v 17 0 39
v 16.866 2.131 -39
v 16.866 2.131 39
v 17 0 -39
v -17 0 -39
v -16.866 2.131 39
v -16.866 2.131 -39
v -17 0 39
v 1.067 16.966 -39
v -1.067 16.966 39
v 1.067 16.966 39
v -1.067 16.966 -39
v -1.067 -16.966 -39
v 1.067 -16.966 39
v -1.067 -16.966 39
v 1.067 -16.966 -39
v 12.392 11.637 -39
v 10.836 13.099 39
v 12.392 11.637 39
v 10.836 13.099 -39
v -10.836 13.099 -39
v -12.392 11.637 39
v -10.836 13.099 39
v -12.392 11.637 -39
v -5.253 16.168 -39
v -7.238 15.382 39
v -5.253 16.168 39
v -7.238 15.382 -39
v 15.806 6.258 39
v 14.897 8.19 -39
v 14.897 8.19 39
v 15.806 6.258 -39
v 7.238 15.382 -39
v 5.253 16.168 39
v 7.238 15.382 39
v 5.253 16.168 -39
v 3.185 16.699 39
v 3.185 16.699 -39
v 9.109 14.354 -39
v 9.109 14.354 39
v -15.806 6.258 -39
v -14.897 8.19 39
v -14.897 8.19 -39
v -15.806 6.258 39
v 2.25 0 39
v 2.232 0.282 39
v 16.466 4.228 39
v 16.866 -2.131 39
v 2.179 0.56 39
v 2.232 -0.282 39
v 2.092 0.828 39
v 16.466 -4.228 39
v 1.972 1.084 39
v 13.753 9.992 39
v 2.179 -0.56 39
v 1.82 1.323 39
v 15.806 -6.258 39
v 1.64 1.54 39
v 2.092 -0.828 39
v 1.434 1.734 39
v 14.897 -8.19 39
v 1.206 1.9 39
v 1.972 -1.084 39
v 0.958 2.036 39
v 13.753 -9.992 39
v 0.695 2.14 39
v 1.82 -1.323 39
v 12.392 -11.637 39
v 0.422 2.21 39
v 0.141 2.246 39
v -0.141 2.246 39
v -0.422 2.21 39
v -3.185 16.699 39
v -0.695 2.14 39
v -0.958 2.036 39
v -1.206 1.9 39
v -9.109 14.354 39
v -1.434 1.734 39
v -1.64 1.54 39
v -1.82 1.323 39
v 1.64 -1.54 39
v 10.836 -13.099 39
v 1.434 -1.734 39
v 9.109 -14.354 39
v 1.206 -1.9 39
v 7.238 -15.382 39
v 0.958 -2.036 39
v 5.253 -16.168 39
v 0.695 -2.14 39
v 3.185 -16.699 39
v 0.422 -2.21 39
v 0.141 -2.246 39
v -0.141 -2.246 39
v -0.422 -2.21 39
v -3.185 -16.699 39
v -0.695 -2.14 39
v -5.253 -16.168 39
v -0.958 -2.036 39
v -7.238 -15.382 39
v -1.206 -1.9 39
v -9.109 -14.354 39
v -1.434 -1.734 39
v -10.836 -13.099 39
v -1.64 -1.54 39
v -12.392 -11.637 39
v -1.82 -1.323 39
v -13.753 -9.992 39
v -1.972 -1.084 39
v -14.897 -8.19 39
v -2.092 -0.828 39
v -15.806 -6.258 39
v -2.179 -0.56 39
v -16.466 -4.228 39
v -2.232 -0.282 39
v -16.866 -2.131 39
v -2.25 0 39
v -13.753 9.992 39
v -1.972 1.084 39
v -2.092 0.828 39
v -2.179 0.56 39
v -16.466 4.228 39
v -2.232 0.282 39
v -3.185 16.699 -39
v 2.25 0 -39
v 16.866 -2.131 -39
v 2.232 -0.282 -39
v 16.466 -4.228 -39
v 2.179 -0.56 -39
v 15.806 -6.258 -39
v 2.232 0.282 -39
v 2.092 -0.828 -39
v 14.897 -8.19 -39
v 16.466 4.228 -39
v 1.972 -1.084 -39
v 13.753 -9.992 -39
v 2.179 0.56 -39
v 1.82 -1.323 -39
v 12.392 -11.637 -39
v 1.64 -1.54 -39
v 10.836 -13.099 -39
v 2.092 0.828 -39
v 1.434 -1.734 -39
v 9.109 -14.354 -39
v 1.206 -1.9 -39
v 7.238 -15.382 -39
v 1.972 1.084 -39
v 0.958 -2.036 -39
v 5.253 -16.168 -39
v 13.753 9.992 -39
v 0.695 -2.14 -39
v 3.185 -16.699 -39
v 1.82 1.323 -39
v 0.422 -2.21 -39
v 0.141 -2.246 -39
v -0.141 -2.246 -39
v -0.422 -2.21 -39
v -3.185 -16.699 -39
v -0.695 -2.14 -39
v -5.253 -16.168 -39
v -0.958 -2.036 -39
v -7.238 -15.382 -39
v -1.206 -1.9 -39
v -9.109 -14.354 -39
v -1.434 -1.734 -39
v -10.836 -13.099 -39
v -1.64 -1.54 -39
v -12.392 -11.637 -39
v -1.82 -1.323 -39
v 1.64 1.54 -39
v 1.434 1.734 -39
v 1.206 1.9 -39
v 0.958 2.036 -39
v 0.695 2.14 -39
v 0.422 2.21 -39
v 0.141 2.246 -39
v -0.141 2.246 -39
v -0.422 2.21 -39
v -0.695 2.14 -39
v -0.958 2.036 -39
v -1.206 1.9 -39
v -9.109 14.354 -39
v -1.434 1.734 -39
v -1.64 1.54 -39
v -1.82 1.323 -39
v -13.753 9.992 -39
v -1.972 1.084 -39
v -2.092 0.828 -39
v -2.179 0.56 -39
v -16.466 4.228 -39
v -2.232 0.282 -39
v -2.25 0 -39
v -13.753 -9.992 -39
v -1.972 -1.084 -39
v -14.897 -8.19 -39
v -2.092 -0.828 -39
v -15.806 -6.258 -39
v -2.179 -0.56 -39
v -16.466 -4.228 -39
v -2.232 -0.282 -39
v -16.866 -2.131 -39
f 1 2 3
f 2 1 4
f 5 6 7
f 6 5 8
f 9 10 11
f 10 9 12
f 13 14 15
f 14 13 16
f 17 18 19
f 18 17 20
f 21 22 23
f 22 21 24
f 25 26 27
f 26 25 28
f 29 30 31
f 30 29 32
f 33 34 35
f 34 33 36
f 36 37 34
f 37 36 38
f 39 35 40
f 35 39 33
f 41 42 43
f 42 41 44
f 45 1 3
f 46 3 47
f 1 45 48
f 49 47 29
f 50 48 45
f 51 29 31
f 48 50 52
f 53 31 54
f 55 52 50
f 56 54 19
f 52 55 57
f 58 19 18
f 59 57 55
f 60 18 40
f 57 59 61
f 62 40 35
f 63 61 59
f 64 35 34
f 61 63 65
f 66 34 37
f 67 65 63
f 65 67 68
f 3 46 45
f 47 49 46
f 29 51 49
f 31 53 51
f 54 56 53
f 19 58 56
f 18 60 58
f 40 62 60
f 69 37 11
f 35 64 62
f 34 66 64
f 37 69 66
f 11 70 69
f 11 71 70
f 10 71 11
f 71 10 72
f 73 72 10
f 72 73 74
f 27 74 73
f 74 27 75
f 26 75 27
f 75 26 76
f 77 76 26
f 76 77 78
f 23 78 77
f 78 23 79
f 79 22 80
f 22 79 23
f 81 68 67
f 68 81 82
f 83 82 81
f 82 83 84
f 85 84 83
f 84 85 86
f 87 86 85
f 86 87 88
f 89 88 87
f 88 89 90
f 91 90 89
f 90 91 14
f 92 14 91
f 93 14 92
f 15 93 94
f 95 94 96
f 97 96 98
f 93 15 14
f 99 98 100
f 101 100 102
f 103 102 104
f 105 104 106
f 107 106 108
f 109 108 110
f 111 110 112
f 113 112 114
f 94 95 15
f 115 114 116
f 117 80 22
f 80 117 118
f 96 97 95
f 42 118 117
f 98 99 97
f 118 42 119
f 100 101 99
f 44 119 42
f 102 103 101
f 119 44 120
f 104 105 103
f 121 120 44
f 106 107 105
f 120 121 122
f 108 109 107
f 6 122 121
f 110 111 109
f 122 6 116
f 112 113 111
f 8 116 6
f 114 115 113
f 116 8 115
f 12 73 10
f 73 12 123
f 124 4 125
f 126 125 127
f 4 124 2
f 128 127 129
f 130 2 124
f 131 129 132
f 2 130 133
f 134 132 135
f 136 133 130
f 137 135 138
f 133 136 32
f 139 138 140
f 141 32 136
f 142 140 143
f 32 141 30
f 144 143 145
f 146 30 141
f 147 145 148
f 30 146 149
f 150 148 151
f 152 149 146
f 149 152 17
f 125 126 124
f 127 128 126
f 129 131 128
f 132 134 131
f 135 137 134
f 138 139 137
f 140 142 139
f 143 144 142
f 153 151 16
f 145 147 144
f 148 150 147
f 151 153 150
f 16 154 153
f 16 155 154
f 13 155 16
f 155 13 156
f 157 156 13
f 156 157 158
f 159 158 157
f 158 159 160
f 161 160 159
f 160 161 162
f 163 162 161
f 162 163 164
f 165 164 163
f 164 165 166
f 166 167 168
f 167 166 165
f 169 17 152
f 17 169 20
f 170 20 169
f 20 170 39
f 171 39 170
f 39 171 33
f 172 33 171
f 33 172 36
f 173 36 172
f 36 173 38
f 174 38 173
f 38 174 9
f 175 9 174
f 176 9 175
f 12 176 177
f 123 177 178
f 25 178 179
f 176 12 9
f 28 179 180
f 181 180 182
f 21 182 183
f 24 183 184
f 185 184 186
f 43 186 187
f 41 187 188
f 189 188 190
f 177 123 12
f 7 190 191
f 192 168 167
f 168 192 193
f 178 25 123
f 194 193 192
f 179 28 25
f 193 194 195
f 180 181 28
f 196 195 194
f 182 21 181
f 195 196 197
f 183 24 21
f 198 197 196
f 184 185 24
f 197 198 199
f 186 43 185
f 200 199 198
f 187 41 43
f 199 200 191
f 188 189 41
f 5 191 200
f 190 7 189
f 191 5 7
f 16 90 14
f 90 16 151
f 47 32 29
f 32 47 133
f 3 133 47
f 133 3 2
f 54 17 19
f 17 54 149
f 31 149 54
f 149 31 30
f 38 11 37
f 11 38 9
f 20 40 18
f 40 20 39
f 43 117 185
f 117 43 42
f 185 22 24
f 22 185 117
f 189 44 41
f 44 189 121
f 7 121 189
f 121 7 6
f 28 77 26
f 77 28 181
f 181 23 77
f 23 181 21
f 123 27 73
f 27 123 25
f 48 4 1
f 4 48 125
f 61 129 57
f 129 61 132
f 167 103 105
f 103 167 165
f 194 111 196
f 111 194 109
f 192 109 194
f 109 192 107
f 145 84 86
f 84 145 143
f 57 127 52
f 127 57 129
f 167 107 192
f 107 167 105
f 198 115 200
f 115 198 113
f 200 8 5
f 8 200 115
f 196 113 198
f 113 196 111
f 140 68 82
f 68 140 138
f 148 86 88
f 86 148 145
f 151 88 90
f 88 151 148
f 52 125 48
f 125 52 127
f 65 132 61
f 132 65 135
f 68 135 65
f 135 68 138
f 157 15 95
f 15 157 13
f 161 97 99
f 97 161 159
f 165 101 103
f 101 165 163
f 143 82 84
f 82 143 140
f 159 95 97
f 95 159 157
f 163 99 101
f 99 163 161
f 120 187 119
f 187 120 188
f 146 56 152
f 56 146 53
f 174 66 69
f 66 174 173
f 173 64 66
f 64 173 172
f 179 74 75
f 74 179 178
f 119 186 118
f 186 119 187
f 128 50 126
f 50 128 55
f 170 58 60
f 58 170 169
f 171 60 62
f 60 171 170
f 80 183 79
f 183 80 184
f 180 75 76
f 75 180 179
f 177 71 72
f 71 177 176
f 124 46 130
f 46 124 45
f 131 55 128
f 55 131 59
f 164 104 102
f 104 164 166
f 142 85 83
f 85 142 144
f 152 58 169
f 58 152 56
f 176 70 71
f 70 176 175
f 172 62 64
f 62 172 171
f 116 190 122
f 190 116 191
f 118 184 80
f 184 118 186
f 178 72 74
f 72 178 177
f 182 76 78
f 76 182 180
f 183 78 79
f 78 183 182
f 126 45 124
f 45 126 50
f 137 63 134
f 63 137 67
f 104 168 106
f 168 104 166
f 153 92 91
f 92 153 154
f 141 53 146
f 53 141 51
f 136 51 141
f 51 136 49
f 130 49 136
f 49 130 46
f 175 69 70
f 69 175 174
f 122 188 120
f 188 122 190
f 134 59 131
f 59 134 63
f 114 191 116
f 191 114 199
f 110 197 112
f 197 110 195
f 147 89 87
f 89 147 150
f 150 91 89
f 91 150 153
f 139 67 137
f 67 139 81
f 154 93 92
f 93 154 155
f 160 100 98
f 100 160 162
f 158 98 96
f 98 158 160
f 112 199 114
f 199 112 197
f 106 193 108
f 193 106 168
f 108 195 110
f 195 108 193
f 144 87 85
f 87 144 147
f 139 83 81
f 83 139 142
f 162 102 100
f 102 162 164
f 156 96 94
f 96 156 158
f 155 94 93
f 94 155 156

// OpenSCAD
$fn = 50;


difference() {
	union() {
		translate(v = [0, 0, -39.0000000000]) {
			cylinder(h = 78, r = 17.0000000000);
		}
	}
	union() {
		translate(v = [0, 0, -100.0000000000]) {
			cylinder(h = 200, r = 2.2500000000);
		}
	}
}
